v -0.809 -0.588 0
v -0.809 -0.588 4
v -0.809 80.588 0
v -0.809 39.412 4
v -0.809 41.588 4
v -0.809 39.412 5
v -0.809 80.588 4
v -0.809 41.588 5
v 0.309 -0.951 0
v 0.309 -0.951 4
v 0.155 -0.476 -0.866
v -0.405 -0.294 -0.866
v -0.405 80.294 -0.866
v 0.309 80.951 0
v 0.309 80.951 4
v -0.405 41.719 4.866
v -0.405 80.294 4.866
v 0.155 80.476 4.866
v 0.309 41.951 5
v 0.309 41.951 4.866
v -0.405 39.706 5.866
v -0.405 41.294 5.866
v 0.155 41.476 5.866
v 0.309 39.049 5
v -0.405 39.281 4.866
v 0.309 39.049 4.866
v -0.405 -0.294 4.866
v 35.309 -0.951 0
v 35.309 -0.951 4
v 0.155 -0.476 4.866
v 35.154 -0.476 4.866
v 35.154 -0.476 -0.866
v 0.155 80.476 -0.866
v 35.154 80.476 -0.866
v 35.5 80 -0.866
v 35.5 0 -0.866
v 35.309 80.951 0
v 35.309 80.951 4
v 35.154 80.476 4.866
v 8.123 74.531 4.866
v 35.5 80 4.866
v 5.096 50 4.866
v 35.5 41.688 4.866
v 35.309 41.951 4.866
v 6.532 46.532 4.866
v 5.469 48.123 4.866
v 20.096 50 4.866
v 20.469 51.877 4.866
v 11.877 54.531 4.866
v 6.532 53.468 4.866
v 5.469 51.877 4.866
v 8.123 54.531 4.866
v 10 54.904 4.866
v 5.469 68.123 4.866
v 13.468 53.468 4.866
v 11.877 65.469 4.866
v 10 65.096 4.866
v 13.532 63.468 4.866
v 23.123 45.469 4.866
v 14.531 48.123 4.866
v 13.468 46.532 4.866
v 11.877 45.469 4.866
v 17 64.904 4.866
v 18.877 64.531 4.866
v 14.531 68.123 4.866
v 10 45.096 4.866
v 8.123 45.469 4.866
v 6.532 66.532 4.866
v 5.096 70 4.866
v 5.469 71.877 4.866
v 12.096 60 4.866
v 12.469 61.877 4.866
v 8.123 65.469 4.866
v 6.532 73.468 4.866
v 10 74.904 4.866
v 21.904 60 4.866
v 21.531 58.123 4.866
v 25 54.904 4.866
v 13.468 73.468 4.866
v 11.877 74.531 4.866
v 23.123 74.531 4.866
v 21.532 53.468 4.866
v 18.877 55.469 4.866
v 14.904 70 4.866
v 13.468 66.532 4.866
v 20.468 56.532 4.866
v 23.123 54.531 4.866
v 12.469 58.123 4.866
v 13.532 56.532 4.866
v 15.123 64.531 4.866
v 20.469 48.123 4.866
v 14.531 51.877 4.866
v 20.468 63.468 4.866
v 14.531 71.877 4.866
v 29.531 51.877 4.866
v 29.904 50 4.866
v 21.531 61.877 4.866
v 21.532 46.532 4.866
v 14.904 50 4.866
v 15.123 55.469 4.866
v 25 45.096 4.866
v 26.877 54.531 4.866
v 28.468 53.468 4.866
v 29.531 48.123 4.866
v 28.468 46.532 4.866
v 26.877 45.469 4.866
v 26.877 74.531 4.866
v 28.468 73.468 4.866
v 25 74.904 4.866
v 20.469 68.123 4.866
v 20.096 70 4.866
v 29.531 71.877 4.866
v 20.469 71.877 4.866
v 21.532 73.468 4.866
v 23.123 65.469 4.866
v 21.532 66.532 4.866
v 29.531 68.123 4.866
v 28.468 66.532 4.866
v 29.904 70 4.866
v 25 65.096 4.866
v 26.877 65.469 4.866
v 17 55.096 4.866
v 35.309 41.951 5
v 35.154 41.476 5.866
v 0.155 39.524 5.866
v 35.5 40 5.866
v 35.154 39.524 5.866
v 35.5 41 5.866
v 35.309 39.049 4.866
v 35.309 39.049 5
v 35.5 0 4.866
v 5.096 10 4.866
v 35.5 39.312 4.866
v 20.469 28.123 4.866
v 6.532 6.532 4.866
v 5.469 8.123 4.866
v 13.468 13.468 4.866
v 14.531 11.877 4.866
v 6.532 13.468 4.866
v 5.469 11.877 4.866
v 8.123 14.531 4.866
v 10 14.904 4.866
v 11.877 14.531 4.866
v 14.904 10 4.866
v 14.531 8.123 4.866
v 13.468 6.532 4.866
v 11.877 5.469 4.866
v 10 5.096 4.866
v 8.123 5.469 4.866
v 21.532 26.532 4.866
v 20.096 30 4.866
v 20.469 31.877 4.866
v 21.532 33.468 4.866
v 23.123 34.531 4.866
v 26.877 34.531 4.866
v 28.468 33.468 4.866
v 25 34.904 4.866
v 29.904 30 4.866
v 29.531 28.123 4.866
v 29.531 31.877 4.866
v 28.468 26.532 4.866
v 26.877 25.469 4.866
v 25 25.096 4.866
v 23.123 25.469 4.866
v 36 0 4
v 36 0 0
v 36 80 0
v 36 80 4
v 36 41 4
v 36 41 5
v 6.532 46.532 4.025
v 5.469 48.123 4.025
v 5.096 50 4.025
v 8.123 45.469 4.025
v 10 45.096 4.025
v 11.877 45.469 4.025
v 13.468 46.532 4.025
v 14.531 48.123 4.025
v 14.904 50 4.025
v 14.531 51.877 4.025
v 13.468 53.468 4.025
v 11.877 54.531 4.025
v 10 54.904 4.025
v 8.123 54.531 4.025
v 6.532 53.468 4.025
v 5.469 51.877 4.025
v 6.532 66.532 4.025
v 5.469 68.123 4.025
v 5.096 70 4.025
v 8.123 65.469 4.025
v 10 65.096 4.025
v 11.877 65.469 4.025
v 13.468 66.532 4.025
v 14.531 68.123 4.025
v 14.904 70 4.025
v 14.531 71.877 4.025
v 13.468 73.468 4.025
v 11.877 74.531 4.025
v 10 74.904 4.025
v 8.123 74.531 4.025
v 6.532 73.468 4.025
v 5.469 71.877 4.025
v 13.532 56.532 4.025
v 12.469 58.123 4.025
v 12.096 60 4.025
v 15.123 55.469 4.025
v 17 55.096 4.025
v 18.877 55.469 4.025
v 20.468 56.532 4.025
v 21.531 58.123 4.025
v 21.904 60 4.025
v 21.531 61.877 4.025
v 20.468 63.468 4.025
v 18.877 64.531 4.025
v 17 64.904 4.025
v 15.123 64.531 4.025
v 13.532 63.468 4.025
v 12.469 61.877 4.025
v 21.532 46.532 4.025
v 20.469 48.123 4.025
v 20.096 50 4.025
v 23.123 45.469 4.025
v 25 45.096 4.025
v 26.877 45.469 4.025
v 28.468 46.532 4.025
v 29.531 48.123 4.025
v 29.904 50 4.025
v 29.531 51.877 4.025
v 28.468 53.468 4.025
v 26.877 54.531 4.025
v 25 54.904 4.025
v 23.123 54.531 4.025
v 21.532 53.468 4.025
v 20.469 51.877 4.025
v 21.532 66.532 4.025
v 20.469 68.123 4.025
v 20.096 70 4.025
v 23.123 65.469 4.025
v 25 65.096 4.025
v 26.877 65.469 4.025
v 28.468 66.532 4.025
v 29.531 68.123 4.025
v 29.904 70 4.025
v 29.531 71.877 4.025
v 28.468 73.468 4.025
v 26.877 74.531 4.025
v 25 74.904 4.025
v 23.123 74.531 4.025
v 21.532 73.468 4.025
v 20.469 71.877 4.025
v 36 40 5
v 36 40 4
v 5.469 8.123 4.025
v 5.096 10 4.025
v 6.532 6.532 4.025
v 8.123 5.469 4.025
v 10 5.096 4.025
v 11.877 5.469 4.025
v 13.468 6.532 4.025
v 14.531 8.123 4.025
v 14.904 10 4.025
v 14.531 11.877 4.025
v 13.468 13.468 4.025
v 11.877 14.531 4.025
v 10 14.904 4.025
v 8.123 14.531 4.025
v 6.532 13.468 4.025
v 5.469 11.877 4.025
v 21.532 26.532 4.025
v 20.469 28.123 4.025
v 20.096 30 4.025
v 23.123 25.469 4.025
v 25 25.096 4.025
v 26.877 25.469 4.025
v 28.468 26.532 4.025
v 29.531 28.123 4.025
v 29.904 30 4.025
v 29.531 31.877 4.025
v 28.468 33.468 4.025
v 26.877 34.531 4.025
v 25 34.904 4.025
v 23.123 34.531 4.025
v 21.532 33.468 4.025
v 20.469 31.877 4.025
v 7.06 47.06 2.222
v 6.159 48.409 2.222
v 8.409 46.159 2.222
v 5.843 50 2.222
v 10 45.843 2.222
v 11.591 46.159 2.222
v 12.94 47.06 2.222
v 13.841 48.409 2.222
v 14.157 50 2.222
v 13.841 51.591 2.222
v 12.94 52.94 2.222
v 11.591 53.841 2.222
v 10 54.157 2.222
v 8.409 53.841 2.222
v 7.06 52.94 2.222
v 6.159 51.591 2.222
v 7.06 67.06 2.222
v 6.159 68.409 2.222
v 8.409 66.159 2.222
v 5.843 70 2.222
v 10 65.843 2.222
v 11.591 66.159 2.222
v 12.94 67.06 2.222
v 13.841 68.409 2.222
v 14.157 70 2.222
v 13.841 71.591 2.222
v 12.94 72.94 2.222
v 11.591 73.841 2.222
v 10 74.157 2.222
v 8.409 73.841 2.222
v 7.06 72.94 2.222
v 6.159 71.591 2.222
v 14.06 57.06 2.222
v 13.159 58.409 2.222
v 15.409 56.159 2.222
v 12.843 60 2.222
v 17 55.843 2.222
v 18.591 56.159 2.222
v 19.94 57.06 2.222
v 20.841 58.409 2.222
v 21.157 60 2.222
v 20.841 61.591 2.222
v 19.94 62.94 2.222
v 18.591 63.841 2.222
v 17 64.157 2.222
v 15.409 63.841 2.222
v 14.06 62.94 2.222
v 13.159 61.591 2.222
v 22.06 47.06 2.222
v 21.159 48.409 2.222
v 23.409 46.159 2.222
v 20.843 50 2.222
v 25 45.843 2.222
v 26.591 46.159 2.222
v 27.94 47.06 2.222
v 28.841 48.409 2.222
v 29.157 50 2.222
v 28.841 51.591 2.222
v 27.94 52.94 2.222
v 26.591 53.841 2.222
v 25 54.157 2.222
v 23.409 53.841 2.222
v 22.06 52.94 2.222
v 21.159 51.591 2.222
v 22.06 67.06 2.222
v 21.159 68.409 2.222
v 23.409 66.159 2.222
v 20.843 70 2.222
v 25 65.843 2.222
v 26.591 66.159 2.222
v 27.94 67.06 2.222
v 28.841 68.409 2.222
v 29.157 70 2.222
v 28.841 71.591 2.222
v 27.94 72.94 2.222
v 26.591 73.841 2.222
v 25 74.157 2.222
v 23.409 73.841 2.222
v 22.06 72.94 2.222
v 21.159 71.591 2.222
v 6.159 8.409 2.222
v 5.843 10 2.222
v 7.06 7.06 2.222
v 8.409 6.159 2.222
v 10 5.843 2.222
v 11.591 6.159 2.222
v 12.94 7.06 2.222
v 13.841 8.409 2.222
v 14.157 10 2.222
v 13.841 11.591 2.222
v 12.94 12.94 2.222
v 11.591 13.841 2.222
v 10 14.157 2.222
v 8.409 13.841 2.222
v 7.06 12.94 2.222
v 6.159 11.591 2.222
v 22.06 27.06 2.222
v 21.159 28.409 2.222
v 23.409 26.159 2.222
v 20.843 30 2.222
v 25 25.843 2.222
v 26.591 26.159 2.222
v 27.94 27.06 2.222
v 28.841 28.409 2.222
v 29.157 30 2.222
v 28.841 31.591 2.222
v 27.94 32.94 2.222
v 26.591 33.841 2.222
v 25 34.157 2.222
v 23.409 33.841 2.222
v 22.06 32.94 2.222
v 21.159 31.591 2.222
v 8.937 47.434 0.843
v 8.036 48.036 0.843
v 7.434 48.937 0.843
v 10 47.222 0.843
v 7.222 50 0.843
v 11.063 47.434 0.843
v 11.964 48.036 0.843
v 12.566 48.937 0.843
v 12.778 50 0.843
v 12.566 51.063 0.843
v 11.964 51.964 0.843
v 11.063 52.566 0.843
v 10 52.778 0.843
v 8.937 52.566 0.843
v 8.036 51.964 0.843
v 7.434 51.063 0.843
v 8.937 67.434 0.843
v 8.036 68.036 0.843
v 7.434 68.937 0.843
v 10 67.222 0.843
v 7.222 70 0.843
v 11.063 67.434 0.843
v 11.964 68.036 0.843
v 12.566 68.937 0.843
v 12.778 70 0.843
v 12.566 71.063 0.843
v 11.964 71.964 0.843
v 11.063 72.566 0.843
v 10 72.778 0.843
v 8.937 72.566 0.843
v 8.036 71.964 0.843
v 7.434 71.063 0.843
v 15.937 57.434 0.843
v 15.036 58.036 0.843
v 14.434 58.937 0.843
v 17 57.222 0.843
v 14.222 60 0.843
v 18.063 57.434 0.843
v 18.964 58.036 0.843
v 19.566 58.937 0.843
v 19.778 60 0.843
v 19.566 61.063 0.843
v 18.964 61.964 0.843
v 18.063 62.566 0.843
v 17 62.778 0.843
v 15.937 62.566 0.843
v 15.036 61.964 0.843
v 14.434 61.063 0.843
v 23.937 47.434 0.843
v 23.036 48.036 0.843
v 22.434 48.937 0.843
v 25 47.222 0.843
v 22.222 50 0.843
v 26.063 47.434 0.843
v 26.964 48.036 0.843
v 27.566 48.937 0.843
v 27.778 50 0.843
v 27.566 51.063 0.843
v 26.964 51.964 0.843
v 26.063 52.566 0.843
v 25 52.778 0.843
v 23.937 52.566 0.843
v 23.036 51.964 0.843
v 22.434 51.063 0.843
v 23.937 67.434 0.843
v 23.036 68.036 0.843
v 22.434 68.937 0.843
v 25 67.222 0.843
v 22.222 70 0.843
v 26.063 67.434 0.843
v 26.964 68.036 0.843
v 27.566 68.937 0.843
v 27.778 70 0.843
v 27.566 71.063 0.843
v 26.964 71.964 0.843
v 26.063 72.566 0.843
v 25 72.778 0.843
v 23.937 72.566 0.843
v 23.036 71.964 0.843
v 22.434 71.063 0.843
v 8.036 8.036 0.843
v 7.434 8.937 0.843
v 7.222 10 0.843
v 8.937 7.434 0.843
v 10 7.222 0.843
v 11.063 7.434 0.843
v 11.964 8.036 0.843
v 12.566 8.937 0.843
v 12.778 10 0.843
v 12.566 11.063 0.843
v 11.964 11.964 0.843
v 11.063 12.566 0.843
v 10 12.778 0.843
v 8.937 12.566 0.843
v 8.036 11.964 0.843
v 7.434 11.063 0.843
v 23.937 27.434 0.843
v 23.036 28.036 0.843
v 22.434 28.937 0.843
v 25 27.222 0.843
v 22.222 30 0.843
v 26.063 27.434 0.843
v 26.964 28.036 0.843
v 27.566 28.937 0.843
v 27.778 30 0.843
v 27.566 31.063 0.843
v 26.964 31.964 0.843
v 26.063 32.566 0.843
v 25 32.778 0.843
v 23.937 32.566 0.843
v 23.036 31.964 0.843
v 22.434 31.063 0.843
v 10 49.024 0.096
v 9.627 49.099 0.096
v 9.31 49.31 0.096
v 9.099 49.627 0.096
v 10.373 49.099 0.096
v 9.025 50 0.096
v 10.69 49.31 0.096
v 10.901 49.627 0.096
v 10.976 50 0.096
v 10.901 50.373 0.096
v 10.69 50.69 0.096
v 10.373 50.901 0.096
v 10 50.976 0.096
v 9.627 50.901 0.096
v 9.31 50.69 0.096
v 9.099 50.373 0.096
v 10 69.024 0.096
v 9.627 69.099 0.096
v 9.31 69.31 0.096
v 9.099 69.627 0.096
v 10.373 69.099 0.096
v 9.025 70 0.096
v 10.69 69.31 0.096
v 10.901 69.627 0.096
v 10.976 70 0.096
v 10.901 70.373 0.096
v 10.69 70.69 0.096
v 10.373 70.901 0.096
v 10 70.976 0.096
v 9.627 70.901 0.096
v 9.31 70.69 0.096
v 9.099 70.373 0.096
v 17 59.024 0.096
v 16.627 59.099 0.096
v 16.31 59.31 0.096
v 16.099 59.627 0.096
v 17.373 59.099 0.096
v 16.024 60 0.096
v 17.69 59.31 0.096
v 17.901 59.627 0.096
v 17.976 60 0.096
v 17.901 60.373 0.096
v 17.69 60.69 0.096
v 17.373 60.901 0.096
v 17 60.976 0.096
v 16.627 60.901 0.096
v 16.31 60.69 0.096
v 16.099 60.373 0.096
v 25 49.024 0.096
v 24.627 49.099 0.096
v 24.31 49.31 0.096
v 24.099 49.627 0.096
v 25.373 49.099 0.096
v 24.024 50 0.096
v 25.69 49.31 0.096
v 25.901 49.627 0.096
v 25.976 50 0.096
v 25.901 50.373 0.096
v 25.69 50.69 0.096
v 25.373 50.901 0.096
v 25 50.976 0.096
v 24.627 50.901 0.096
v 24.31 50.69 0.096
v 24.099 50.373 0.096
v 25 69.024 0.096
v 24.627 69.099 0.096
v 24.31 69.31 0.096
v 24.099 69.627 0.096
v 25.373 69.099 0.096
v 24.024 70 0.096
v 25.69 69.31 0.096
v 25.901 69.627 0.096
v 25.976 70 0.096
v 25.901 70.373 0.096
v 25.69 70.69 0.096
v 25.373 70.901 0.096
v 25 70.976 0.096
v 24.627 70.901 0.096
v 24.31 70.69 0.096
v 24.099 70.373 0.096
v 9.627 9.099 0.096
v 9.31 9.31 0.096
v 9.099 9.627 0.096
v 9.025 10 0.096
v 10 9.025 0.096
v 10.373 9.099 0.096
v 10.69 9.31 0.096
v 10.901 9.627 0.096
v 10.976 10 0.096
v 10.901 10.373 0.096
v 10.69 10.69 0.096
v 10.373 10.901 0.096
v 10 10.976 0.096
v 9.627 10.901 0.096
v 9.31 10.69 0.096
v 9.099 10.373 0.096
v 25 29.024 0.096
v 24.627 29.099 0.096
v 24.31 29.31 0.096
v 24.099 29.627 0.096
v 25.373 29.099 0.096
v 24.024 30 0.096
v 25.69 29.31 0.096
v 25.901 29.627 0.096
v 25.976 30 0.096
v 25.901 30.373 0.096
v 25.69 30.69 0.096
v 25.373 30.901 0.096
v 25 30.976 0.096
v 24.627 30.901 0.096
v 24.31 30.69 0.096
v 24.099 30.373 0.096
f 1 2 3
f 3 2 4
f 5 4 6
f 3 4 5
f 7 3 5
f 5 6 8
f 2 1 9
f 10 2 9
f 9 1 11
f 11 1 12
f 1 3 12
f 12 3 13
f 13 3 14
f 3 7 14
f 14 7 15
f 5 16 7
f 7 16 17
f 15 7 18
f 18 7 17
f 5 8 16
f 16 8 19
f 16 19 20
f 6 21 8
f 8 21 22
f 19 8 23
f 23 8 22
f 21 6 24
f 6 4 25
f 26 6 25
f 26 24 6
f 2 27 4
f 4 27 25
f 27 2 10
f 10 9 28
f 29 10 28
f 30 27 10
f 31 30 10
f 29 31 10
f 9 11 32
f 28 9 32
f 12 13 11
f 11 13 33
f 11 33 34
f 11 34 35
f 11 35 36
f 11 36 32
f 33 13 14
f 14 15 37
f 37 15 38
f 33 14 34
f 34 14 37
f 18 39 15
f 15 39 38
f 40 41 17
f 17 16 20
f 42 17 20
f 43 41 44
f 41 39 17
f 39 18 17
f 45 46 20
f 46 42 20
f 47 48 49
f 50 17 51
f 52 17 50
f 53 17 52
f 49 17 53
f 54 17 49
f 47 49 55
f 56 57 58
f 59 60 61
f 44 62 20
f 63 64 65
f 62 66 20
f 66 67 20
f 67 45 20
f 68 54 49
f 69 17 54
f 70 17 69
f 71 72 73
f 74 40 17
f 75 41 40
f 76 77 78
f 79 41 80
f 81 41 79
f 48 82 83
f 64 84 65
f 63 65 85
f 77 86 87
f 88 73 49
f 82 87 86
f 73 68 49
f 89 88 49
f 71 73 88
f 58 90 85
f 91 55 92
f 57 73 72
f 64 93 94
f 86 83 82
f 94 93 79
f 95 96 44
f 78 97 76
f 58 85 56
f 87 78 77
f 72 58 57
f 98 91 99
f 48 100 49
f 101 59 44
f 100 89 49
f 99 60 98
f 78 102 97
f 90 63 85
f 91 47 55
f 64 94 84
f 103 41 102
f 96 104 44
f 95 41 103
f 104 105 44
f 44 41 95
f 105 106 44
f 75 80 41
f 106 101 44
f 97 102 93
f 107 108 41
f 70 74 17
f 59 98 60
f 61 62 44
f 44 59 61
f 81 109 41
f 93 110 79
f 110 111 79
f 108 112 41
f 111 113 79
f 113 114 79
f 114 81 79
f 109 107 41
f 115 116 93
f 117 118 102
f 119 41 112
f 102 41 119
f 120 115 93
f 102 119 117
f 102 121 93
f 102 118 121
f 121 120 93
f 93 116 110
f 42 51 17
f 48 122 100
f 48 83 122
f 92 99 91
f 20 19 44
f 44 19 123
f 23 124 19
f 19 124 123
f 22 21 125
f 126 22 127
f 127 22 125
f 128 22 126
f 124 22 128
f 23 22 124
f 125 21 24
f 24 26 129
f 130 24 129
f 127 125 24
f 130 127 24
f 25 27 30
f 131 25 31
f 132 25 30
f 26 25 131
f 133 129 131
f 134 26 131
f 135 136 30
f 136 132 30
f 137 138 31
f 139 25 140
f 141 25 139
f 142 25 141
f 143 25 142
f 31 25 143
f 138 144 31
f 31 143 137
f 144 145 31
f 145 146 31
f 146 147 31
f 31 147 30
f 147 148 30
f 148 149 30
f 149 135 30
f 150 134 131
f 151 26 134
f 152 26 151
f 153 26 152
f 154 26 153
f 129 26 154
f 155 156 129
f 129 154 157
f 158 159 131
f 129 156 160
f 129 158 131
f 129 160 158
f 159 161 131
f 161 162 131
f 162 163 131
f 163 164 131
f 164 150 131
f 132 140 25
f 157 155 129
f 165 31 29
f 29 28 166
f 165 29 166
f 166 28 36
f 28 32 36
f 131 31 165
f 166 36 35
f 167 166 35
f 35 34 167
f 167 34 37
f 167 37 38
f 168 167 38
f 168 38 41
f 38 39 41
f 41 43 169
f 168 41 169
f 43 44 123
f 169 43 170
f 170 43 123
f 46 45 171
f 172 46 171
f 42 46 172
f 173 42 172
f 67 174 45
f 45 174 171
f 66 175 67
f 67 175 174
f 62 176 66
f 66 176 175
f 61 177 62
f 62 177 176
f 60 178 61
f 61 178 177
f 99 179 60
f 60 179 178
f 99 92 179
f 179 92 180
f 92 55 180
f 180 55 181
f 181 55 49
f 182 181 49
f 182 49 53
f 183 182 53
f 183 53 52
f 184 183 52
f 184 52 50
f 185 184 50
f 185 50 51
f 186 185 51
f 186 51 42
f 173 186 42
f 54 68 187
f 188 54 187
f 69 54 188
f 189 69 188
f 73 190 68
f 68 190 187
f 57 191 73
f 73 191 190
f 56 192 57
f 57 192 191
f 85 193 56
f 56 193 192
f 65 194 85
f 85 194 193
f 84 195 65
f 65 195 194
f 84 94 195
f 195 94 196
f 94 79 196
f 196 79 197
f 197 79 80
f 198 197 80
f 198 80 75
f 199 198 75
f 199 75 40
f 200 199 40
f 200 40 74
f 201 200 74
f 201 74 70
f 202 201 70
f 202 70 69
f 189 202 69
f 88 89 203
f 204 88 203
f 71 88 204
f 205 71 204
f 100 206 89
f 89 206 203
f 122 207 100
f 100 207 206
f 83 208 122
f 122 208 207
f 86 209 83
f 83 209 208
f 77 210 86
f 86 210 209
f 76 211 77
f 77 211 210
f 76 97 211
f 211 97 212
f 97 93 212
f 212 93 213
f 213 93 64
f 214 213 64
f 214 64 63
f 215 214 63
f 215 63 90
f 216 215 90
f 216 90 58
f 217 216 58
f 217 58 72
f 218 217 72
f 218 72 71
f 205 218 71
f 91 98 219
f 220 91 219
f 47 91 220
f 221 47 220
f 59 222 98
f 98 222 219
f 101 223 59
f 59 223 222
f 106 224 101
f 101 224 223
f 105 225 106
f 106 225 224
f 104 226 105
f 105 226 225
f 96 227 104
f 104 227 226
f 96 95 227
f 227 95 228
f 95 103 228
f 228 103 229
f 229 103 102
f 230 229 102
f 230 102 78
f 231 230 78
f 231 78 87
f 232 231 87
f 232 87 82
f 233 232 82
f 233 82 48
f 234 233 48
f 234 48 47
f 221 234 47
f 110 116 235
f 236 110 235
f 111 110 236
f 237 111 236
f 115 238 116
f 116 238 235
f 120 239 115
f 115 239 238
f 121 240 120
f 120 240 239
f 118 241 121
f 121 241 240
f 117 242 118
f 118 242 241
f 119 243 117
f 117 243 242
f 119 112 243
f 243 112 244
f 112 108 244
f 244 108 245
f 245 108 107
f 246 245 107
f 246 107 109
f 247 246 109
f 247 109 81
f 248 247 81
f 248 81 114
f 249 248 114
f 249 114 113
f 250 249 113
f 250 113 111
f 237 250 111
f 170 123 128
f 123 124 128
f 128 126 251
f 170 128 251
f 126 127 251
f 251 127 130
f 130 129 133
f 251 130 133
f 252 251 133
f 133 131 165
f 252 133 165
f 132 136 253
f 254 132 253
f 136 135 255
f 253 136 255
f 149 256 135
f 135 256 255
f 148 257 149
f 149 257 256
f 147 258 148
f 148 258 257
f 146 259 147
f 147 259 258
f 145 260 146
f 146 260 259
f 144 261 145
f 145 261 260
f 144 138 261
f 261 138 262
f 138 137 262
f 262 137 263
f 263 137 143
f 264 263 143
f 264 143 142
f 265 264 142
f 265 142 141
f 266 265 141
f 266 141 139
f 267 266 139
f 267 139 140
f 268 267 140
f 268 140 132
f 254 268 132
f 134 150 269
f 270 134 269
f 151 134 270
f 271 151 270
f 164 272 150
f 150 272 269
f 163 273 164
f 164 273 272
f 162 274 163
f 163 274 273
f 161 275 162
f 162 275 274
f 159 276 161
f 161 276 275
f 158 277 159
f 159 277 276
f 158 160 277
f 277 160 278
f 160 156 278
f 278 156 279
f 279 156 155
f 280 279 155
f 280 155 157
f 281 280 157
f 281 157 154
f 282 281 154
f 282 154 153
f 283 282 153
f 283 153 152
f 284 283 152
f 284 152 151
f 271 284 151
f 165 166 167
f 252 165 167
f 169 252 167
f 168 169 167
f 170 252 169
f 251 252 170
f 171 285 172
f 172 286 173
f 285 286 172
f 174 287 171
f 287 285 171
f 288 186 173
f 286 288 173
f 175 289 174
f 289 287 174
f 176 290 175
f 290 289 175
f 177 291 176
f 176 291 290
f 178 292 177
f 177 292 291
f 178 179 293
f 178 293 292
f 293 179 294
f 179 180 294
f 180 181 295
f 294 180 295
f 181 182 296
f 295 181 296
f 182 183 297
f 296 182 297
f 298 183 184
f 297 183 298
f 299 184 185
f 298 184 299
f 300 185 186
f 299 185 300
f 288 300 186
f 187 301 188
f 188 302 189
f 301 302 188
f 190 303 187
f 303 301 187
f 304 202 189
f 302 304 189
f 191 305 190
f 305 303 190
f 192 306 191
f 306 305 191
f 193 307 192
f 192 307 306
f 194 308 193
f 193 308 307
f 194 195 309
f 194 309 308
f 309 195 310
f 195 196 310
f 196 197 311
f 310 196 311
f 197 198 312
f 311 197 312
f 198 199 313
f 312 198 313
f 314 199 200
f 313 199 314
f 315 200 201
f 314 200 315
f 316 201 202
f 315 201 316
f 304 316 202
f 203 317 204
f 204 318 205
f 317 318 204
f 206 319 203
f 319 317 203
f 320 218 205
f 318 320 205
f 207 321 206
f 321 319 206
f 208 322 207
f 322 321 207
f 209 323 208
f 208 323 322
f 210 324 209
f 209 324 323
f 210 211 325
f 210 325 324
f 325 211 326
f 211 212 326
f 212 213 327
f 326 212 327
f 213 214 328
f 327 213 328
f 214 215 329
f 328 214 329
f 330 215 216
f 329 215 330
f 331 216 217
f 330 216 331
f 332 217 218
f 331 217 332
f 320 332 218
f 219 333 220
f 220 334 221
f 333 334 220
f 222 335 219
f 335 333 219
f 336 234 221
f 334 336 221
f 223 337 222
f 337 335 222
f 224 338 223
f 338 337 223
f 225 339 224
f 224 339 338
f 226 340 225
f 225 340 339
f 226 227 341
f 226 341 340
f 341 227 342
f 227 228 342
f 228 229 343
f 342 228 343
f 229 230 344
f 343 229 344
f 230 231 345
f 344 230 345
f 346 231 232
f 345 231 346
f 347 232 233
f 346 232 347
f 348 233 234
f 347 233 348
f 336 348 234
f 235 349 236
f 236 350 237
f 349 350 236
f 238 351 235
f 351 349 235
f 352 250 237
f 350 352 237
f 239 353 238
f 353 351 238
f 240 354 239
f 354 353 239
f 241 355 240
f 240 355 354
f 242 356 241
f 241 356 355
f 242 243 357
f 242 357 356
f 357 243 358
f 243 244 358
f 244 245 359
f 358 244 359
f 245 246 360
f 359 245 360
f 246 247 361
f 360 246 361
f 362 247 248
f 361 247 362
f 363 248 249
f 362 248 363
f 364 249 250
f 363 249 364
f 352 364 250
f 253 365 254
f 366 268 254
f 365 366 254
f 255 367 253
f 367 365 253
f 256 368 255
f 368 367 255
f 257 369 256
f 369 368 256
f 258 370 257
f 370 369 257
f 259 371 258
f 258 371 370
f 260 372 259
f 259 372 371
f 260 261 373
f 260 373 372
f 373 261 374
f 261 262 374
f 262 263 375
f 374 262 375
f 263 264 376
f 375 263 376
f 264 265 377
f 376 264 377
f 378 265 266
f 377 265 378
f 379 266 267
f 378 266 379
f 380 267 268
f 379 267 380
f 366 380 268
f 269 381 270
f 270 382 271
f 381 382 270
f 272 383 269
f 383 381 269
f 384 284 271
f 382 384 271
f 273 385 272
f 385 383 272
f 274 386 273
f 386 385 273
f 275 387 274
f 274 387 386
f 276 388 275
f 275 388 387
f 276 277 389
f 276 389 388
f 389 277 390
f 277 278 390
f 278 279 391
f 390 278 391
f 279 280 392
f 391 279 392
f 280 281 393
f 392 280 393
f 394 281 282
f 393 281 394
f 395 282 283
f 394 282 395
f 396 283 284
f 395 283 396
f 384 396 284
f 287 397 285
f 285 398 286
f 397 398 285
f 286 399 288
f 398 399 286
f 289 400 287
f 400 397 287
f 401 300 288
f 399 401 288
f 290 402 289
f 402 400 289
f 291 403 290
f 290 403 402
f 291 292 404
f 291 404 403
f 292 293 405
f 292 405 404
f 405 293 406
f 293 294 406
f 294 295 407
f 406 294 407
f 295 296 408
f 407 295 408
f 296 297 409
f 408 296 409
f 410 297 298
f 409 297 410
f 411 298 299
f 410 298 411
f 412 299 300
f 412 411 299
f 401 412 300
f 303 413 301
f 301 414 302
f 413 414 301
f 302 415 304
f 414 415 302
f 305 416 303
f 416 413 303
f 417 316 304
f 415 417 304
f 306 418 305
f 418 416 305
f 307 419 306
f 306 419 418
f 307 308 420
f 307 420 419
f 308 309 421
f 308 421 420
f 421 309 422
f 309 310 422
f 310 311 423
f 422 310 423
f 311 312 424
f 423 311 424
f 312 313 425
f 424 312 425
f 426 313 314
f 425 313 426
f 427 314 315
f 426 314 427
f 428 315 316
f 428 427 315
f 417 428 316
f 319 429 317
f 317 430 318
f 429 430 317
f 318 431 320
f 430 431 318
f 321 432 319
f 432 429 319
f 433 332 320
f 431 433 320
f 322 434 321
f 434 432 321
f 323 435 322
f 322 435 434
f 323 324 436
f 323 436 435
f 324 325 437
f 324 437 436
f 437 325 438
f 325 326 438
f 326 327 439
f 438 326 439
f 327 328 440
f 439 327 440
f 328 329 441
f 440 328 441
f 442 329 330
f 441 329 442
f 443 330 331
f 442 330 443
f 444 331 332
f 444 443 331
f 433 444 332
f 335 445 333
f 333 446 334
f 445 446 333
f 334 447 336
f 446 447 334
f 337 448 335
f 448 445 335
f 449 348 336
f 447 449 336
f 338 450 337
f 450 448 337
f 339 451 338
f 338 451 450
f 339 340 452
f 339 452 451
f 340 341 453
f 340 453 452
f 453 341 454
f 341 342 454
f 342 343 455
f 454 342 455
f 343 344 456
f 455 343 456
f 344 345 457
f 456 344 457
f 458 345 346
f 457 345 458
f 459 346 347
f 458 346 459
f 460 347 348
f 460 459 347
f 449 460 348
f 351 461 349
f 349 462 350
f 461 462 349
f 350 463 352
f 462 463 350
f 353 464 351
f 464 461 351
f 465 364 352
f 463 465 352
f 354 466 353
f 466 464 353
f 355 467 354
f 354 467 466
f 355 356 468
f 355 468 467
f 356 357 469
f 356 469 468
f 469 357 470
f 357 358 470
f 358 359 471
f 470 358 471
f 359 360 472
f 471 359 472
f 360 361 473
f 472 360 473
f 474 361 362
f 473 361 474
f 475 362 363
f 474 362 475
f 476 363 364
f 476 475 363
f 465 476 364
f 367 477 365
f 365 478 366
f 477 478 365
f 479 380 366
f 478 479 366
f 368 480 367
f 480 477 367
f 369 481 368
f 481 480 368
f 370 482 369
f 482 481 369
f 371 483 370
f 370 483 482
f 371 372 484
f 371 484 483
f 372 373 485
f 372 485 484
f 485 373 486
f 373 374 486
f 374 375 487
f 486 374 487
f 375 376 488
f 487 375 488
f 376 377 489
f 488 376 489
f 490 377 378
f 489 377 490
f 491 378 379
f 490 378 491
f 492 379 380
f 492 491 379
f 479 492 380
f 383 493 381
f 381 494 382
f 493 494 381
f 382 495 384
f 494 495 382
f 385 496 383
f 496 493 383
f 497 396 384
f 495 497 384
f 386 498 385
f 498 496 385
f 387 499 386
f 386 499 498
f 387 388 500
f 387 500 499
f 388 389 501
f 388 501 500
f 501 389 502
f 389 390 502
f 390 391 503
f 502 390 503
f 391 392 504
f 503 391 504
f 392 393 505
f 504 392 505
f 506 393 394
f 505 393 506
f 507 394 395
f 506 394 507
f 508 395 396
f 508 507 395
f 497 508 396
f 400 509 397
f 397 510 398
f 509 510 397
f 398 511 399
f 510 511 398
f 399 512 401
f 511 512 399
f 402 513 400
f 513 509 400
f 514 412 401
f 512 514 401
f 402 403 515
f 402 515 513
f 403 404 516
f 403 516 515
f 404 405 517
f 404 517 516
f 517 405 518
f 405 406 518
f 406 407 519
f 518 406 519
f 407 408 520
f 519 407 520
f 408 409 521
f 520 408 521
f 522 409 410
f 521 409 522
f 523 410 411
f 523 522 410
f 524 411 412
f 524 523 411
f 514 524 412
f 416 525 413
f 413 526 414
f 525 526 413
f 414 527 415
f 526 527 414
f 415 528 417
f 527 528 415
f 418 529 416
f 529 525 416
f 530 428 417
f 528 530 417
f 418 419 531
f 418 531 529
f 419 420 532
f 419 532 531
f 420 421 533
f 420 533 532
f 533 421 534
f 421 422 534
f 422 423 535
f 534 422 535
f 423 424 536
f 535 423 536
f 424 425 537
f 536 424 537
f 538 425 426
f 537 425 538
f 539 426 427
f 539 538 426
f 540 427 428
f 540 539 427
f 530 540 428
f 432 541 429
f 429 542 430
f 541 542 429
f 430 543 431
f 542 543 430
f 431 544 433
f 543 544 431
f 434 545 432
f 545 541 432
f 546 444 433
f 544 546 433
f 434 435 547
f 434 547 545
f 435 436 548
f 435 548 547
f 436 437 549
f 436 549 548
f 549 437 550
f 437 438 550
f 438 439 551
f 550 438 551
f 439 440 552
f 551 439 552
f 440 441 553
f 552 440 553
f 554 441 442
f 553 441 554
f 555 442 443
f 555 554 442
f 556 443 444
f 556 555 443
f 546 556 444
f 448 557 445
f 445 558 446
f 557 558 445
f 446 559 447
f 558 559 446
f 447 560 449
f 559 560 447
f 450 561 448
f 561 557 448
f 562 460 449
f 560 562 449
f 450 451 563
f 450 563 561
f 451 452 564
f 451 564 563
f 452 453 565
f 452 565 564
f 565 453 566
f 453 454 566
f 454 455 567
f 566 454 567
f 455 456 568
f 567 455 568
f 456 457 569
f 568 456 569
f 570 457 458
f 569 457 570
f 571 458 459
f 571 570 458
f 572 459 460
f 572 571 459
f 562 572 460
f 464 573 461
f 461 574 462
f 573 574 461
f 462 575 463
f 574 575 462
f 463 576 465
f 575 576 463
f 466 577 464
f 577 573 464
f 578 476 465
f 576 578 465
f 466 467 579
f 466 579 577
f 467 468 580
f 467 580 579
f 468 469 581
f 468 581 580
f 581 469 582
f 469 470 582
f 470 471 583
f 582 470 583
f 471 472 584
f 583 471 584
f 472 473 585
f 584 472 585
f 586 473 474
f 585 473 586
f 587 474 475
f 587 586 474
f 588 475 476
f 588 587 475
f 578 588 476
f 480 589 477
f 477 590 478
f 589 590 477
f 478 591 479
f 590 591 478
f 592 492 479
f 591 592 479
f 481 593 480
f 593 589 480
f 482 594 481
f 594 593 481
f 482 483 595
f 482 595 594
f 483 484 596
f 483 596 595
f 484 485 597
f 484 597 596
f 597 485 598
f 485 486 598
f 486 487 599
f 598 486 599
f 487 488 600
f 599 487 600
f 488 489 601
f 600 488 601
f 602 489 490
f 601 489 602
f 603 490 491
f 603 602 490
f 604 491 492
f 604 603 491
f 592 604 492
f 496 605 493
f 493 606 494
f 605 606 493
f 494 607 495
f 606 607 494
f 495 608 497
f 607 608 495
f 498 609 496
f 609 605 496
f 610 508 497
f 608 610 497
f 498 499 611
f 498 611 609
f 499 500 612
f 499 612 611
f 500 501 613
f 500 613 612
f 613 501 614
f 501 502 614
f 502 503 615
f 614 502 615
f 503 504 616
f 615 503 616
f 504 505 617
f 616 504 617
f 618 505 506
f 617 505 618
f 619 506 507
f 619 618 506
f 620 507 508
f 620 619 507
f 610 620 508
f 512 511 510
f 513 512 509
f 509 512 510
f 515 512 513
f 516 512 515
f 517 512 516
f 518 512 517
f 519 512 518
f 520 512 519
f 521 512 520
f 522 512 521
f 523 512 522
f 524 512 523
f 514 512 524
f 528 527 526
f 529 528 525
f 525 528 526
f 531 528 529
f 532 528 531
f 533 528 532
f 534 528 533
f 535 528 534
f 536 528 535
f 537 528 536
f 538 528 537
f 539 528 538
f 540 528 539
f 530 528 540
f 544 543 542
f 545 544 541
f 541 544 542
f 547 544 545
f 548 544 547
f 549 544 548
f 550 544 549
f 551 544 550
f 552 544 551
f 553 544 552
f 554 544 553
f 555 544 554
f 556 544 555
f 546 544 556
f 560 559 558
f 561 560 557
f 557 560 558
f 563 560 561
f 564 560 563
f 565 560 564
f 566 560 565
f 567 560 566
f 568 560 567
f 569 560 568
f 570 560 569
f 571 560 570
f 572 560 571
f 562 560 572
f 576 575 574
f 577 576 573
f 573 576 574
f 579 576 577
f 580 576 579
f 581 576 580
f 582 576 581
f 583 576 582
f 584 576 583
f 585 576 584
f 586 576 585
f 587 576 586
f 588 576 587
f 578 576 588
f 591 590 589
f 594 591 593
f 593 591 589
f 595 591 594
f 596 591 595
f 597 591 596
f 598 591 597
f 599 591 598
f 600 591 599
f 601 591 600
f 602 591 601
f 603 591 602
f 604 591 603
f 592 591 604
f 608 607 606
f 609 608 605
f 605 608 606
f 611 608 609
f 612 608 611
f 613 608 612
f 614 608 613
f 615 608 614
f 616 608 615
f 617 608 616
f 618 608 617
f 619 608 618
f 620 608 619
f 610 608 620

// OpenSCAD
// Loguncov Maxim 13.12.13


//$fn=128;


translate([0,40,0])
minkowski()
{cube([35,1,5]);
sphere(1);
}

difference() {

//основа
minkowski()
{cube([35,80,4]);
sphere(1);
}


//отверстия
translate([10,10,5])sphere(5);
translate([25,30,5])sphere(5);


translate([10,70,5])sphere(5);
translate([25,50,5])sphere(5);
translate([25,70,5])sphere(5);
translate([10,50,5])sphere(5);
translate([17,60,5])sphere(5);

}
